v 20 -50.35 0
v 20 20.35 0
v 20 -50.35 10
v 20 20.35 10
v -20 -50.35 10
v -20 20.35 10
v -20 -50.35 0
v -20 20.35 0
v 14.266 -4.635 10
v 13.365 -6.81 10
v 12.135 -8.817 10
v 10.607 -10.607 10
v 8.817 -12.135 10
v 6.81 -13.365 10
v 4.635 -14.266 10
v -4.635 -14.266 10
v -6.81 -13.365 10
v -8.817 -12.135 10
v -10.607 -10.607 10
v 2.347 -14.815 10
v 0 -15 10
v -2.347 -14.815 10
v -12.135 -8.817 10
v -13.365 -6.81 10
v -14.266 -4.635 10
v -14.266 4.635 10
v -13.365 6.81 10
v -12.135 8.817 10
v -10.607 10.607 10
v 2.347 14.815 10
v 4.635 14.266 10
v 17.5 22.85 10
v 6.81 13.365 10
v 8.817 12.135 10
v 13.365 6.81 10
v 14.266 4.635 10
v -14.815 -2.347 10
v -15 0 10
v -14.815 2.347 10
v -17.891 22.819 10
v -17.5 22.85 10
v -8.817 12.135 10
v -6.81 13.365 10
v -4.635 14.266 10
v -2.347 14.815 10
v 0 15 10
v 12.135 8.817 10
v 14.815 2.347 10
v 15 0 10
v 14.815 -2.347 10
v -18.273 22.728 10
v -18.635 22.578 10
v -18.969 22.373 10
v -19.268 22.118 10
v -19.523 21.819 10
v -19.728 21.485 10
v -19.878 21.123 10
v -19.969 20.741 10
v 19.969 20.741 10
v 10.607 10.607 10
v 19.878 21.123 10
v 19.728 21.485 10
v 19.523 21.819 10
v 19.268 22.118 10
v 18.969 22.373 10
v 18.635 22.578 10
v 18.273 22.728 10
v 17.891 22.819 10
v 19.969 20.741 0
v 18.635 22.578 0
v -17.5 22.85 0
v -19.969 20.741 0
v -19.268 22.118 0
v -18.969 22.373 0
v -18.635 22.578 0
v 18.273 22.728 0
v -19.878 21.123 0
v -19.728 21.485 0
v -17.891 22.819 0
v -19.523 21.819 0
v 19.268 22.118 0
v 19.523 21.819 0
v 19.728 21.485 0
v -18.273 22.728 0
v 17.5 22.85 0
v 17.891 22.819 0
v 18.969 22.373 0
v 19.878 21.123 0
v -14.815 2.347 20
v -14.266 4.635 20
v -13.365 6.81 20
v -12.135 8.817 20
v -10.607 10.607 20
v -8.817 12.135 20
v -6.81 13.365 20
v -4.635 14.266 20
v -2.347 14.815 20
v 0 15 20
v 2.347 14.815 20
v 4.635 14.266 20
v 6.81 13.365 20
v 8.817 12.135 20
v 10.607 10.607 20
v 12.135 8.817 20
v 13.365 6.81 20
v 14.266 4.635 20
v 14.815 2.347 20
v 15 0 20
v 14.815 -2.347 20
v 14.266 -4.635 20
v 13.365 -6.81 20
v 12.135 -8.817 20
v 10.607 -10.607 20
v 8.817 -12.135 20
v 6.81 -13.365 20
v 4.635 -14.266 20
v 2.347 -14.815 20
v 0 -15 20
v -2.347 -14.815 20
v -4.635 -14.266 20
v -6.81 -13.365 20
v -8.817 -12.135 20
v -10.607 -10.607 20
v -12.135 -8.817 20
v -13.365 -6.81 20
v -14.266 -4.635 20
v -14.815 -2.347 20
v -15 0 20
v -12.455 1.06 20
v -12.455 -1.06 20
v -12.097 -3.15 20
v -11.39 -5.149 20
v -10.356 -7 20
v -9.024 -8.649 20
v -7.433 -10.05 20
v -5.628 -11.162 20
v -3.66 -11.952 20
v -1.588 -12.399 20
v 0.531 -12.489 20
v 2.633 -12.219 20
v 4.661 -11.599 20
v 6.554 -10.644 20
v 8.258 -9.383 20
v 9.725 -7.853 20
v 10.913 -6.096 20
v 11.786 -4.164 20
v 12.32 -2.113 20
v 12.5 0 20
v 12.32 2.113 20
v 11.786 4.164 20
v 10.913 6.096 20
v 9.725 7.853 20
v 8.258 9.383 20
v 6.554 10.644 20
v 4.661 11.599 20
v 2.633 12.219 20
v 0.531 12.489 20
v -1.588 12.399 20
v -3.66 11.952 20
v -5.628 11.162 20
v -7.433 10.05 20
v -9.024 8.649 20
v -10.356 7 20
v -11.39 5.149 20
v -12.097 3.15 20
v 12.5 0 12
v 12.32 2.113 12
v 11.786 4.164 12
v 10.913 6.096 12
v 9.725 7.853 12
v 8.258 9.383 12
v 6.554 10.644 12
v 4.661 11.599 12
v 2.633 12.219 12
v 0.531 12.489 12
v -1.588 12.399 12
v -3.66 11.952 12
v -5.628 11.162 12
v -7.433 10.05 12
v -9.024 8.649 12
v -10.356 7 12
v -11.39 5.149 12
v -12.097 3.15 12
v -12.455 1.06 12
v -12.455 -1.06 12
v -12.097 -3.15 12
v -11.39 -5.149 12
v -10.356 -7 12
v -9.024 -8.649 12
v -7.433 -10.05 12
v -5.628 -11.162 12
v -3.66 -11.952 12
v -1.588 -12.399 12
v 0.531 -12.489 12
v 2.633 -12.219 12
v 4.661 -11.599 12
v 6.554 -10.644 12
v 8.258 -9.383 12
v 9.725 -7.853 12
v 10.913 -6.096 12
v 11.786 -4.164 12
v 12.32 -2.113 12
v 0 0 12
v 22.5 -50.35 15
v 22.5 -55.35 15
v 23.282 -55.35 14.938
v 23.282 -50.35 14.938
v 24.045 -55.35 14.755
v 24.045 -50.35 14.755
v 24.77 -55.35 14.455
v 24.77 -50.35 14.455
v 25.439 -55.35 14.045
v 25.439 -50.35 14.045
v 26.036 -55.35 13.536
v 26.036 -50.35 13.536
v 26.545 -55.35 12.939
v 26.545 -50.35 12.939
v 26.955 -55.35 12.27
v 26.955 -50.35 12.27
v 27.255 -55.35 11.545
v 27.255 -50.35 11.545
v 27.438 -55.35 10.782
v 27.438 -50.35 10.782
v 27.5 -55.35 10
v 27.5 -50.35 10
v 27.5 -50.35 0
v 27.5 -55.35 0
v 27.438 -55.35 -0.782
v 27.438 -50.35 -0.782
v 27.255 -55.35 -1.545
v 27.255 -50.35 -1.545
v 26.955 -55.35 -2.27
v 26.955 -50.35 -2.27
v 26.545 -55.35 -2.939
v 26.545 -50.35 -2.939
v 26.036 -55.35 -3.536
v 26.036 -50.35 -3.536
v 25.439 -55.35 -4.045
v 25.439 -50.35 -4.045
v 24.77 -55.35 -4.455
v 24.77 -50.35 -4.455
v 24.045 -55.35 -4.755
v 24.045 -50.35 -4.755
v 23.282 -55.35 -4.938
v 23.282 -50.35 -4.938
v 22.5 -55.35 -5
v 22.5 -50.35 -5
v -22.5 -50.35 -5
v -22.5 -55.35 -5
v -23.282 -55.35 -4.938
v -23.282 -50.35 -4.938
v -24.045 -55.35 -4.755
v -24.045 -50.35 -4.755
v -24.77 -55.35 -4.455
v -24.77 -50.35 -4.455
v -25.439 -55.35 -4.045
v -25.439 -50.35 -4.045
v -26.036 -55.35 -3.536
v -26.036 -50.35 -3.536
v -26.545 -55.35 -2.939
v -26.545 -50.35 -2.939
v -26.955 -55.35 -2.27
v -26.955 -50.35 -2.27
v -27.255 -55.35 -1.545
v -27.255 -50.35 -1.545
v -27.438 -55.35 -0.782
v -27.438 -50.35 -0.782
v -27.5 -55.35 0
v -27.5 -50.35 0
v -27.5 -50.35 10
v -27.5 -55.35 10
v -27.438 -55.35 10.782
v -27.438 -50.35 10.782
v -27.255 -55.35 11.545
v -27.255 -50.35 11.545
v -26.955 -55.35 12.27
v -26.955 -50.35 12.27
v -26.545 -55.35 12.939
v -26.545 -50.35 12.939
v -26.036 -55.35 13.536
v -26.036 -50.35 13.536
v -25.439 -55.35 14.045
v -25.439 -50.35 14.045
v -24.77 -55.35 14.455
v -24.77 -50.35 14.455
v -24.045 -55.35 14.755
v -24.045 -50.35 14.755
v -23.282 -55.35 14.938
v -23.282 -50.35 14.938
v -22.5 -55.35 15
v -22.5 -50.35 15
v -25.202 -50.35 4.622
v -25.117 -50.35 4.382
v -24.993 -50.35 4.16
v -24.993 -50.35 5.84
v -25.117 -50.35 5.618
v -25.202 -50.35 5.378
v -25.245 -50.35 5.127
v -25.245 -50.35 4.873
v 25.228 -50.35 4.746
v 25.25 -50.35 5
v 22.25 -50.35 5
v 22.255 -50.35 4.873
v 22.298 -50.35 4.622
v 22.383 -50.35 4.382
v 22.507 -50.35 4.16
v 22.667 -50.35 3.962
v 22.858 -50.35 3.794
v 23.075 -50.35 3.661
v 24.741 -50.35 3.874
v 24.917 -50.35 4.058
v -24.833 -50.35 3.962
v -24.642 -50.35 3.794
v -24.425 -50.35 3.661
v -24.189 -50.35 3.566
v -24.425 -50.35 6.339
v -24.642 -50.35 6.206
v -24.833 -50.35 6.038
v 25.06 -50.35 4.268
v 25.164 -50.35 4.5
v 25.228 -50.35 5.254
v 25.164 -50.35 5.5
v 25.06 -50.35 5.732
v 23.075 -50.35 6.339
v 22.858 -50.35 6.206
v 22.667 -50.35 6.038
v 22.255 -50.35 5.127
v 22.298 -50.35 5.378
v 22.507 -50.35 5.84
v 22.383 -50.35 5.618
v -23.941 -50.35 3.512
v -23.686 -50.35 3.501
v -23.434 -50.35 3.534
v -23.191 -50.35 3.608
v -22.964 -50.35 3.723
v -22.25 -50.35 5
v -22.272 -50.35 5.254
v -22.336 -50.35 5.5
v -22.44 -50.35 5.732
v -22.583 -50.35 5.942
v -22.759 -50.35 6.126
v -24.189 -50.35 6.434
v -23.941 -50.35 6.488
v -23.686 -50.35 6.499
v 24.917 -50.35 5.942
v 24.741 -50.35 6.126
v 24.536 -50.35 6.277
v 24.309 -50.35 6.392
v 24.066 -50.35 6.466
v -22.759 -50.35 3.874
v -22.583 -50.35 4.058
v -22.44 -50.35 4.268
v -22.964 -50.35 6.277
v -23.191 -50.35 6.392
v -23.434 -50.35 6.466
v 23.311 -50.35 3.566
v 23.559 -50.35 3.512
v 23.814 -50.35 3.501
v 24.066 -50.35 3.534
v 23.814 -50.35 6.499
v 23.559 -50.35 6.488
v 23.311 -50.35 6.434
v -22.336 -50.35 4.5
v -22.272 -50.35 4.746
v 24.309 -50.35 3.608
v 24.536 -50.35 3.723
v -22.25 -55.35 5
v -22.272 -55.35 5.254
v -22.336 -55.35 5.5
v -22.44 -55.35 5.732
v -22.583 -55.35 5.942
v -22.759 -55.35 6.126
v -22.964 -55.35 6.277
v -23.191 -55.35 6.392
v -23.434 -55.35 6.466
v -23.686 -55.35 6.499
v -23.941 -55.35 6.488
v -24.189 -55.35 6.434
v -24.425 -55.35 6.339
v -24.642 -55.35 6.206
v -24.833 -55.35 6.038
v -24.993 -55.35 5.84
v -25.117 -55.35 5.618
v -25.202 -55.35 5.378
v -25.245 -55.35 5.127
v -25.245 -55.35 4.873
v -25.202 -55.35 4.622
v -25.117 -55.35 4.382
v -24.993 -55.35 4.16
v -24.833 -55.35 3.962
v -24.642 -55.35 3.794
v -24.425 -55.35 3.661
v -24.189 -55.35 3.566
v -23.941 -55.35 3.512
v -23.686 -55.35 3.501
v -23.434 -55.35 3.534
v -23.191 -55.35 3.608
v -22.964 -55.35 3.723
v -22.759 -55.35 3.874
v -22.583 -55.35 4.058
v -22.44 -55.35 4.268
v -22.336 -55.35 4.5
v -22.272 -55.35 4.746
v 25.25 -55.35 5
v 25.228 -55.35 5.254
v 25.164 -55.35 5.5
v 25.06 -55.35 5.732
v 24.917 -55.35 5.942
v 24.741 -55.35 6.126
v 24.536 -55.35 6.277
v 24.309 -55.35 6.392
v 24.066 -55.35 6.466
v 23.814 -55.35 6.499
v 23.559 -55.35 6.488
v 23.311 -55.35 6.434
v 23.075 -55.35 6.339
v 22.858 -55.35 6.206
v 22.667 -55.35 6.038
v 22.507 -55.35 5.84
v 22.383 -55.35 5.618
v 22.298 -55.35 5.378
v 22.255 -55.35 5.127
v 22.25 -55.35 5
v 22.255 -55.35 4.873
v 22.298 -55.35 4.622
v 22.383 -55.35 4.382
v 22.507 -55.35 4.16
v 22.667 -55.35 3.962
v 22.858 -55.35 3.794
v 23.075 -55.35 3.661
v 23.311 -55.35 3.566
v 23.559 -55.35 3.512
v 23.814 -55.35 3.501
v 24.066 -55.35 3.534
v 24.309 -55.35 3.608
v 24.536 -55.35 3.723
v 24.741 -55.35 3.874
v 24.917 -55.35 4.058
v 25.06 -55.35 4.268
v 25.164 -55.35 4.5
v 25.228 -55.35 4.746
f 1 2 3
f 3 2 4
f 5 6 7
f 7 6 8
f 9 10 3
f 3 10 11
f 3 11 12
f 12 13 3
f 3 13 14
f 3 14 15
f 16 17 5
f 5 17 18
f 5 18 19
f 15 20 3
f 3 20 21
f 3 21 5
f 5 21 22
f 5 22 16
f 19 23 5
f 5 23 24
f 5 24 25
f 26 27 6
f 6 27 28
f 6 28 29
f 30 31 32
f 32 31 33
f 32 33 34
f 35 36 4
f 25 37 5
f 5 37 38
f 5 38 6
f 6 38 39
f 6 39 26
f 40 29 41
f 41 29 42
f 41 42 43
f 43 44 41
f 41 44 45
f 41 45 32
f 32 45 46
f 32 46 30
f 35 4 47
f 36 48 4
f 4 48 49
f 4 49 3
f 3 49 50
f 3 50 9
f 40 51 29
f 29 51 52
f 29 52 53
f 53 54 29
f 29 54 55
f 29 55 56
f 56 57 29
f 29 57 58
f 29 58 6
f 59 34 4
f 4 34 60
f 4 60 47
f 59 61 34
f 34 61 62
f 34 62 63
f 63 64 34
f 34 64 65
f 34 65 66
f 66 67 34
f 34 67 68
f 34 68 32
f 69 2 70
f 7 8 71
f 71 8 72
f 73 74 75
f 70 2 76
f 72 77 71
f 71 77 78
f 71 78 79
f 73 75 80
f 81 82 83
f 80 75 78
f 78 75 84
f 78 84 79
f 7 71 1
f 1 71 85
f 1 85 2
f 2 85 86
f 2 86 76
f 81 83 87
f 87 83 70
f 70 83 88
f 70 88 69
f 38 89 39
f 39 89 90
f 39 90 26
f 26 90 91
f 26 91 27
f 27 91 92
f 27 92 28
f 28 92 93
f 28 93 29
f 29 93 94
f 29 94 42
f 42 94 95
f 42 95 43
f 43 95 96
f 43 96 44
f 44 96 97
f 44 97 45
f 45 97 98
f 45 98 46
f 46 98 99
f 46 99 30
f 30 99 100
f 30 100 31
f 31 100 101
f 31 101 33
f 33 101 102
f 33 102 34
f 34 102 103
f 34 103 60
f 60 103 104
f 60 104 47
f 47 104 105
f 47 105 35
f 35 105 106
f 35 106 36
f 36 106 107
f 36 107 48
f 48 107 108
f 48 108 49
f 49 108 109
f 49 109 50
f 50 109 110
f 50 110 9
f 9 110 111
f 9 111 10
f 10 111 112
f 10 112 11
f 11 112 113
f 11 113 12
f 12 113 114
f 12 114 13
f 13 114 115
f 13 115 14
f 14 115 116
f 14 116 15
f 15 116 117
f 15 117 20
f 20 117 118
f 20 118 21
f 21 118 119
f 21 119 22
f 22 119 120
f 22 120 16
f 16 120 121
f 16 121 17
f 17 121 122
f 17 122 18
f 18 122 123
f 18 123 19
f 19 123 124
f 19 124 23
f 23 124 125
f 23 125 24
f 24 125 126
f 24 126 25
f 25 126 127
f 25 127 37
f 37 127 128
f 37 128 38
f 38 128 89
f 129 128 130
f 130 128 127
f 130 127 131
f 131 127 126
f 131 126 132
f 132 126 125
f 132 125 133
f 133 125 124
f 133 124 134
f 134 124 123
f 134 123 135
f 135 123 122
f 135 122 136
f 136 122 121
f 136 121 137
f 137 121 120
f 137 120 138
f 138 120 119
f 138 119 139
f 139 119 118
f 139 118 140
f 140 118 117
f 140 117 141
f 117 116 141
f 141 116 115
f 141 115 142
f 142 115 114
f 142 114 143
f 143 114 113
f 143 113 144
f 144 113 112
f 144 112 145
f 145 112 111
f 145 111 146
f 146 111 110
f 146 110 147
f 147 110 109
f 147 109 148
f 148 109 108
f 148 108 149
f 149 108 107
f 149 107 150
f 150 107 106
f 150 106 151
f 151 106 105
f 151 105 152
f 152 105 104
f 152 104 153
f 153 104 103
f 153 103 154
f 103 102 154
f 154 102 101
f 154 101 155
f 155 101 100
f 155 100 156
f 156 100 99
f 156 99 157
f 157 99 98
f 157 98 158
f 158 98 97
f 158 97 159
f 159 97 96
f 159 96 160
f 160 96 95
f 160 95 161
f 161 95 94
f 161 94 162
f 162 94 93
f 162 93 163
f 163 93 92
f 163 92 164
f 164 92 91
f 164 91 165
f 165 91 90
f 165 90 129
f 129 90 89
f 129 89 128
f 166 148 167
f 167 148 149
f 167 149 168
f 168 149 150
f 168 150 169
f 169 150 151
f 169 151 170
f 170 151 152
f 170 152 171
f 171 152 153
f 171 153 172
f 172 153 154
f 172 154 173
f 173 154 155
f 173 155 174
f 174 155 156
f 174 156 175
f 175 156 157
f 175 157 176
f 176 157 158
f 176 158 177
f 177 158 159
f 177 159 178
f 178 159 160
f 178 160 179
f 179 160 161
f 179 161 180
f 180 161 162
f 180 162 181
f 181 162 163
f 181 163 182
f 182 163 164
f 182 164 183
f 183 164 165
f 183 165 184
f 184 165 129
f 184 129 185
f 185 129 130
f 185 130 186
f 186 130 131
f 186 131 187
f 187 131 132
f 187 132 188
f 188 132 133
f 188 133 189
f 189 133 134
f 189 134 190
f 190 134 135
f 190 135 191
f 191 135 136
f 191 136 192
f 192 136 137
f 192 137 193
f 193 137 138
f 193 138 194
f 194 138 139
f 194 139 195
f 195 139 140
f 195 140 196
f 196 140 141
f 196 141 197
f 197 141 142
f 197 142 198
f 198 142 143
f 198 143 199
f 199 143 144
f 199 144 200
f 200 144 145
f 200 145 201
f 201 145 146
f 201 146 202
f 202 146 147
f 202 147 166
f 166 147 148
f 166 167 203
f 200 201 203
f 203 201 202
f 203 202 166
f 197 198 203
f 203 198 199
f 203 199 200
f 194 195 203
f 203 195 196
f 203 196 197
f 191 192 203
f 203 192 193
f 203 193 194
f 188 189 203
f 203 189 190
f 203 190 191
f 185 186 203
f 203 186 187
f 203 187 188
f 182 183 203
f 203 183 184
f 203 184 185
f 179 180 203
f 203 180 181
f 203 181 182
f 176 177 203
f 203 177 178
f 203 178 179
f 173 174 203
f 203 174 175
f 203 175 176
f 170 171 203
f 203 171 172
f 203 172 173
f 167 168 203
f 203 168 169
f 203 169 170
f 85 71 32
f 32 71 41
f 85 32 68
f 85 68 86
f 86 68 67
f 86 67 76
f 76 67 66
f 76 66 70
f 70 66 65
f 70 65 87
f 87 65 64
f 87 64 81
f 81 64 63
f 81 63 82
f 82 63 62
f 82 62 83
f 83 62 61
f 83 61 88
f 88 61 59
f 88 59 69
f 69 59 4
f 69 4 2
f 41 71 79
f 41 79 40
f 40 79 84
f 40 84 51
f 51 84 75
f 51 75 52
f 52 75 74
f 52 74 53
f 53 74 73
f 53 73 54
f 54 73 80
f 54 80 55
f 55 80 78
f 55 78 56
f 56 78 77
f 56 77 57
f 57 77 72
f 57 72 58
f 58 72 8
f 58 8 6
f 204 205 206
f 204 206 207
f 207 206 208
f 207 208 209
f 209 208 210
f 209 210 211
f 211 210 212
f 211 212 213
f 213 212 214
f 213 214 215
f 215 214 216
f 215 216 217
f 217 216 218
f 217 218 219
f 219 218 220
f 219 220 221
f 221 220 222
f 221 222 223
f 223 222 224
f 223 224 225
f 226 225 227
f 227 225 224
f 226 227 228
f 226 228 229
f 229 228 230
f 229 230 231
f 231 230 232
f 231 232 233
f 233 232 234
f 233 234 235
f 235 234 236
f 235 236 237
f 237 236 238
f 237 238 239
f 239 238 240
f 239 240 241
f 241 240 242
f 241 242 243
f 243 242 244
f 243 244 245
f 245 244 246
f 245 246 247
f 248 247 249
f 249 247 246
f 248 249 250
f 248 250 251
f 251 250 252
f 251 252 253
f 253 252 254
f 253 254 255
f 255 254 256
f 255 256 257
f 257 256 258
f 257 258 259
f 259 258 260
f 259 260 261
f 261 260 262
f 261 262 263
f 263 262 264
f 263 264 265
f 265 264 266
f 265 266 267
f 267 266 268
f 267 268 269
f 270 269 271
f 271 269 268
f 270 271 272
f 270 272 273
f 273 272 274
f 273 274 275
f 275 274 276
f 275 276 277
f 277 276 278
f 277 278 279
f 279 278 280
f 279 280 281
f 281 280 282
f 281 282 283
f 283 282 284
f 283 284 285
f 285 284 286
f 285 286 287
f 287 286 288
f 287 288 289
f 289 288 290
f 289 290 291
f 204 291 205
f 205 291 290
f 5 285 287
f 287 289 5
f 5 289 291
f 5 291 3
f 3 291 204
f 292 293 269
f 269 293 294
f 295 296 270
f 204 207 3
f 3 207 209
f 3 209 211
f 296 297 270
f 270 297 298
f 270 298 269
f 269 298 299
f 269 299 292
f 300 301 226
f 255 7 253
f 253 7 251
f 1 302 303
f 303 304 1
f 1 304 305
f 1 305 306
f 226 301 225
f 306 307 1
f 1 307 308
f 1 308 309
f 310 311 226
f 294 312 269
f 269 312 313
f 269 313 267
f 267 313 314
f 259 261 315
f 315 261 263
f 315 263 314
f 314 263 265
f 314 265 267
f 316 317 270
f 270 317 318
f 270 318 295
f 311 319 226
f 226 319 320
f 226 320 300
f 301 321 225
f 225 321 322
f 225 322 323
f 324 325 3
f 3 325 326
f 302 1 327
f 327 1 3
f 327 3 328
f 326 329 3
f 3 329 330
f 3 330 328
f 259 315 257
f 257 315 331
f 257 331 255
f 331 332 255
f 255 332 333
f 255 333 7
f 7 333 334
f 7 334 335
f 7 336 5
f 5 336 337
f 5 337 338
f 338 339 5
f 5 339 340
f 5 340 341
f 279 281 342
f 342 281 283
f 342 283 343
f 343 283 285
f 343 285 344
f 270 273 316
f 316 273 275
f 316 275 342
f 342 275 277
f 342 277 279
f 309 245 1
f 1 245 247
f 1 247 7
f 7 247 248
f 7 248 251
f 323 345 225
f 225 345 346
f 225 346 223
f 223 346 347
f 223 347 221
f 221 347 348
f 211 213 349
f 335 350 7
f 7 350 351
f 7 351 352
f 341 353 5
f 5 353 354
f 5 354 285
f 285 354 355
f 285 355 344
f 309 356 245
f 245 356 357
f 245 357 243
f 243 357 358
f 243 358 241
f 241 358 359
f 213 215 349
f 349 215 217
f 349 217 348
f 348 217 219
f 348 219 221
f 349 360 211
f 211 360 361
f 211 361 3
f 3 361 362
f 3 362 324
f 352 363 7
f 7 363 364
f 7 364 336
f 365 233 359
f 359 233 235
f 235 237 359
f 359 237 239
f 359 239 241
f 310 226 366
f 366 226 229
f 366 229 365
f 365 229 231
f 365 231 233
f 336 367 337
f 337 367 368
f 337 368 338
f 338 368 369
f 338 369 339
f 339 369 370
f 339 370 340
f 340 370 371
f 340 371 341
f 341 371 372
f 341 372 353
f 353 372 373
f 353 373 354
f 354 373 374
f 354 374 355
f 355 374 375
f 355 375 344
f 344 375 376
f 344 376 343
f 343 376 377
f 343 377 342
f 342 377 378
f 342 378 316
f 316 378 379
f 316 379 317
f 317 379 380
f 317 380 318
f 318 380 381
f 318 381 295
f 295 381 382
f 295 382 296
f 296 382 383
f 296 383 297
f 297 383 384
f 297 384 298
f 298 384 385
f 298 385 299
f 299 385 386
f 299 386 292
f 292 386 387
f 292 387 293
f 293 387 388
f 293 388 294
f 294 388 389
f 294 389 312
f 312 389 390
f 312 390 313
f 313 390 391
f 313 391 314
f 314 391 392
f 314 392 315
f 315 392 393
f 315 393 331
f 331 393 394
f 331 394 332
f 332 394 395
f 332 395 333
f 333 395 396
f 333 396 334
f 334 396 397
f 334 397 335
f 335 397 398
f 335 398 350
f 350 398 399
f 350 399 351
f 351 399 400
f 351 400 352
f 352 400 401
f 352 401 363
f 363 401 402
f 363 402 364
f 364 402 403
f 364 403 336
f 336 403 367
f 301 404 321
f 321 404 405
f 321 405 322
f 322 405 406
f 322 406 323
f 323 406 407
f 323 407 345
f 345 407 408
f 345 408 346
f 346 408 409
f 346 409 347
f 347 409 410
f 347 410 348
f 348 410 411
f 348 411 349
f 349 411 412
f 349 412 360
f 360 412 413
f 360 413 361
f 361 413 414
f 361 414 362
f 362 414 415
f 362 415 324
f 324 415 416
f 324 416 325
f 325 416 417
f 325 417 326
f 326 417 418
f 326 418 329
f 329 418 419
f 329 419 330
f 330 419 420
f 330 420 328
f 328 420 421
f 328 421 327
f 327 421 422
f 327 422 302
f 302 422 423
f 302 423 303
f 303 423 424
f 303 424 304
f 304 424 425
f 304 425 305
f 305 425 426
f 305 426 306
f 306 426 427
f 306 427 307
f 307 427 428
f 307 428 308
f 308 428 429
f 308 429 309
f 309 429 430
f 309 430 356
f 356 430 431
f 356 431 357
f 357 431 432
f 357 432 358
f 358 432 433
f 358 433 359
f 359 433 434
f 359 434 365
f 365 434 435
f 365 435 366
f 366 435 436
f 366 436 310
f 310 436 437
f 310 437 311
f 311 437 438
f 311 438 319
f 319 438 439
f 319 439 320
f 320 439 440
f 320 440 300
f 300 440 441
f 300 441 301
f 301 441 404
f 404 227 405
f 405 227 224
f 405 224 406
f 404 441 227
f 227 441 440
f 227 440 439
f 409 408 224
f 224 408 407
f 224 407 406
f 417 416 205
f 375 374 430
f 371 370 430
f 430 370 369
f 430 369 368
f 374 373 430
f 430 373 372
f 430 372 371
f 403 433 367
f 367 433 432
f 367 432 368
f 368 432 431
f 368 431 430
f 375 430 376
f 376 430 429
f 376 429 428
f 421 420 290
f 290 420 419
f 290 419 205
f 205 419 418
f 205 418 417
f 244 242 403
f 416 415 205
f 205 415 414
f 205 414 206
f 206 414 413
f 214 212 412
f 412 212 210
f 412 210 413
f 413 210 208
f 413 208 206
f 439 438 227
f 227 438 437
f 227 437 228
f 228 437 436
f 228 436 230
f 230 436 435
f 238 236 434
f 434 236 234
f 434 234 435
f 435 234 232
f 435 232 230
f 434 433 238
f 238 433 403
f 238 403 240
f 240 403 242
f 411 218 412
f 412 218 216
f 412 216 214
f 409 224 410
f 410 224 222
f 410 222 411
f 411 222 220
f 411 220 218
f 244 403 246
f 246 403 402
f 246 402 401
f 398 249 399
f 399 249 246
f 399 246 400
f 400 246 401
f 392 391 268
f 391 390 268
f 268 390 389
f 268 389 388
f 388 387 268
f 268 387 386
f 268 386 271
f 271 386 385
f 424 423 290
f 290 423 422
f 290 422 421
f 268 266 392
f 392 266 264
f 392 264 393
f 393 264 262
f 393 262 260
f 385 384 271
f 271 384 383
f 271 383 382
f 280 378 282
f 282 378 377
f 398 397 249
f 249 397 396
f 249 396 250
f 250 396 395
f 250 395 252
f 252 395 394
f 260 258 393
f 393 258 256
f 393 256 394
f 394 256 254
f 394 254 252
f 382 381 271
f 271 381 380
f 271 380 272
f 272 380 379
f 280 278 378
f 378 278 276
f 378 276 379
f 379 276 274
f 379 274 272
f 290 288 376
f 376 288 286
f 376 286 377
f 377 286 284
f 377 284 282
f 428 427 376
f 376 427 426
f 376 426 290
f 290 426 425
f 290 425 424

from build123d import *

# Parameters (mm, degrees)
SKETCH1_W           = 40
SKETCH1_H           = 110.7
BOSS_EXTRUDE1_DEPTH = 10
SKETCH4_R           = 15
BOSS_EXTRUDE3_DEPTH = 10
SKETCH5_R           = 12.5
CUT_EXTRUDE2_DEPTH  = 8
SKETCH6_W           = 40
SKETCH6_H           = 10
CUT_EXTRUDE3_DEPTH  = 32.5
FILLET4_R           = 2.5
SKETCH11_R          = 1.5
SKETCH11_W          = 40
SKETCH11_H          = 10
BOSS_EXTRUDE4_DEPTH = 5


with BuildPart() as part:
    # Sketch1 → Boss-Extrude1 (new body)
    with BuildSketch(Plane.XY):
        Rectangle(SKETCH1_W, SKETCH1_H)
    extrude(amount=BOSS_EXTRUDE1_DEPTH)

    # Sketch4 → Boss-Extrude3 (add)
    with BuildSketch(Plane.XY.offset(10)):
        Circle(SKETCH4_R)
    extrude(amount=BOSS_EXTRUDE3_DEPTH)

    # Sketch5 → Cut-Extrude2 (cut)
    with BuildSketch(Plane.XY.offset(20)):
        Circle(SKETCH5_R)
    extrude(amount=-CUT_EXTRUDE2_DEPTH, mode=Mode.SUBTRACT)

    # Sketch6 → Cut-Extrude3 (cut)
    with BuildSketch(Plane(origin=(0, 55.35, 0), x_dir=(1, 0, 0), z_dir=(0, 1, 0))):
        with Locations((0, -5)):
            Rectangle(SKETCH6_W, SKETCH6_H)
    extrude(amount=-CUT_EXTRUDE3_DEPTH, mode=Mode.SUBTRACT)

    # Fillet4
    fillet4_edges = [part.edges().sort_by_distance(p)[0] for p in [
        (-20, 22.85, 5),
        (20, 22.85, 5),
    ]]
    fillet(fillet4_edges, radius=FILLET4_R)

    # Sketch11 → Boss-Extrude4 (add)
    with BuildSketch(Plane.XZ.offset(55.35)):
        with BuildLine():
            Line((-22.5, 15), (22.5, 15))
            ThreePointArc((22.5, 15), (26.035533906, 13.535533906), (27.5, 10))
            Line((27.5, 10), (27.5, 0))
            ThreePointArc((27.5, 0), (26.035533906, -3.535533906), (22.5, -5))
            Line((22.5, -5), (-22.5, -5))
            ThreePointArc((-22.5, -5), (-26.035533906, -3.535533906), (-27.5, 0))
            Line((-27.5, 0), (-27.5, 10))
            ThreePointArc((-27.5, 10), (-26.035533906, 13.535533906), (-22.5, 15))
        make_face()
        with Locations((-23.75, 5)):
            Circle(SKETCH11_R, mode=Mode.SUBTRACT)
        with Locations(Location((23.75, 5, 0), (0, 0, 180))):
            Circle(SKETCH11_R, mode=Mode.SUBTRACT)
        with Locations((0, 5)):
            Rectangle(SKETCH11_W, SKETCH11_H, mode=Mode.SUBTRACT)
    extrude(amount=-BOSS_EXTRUDE4_DEPTH)


solid = part.part
